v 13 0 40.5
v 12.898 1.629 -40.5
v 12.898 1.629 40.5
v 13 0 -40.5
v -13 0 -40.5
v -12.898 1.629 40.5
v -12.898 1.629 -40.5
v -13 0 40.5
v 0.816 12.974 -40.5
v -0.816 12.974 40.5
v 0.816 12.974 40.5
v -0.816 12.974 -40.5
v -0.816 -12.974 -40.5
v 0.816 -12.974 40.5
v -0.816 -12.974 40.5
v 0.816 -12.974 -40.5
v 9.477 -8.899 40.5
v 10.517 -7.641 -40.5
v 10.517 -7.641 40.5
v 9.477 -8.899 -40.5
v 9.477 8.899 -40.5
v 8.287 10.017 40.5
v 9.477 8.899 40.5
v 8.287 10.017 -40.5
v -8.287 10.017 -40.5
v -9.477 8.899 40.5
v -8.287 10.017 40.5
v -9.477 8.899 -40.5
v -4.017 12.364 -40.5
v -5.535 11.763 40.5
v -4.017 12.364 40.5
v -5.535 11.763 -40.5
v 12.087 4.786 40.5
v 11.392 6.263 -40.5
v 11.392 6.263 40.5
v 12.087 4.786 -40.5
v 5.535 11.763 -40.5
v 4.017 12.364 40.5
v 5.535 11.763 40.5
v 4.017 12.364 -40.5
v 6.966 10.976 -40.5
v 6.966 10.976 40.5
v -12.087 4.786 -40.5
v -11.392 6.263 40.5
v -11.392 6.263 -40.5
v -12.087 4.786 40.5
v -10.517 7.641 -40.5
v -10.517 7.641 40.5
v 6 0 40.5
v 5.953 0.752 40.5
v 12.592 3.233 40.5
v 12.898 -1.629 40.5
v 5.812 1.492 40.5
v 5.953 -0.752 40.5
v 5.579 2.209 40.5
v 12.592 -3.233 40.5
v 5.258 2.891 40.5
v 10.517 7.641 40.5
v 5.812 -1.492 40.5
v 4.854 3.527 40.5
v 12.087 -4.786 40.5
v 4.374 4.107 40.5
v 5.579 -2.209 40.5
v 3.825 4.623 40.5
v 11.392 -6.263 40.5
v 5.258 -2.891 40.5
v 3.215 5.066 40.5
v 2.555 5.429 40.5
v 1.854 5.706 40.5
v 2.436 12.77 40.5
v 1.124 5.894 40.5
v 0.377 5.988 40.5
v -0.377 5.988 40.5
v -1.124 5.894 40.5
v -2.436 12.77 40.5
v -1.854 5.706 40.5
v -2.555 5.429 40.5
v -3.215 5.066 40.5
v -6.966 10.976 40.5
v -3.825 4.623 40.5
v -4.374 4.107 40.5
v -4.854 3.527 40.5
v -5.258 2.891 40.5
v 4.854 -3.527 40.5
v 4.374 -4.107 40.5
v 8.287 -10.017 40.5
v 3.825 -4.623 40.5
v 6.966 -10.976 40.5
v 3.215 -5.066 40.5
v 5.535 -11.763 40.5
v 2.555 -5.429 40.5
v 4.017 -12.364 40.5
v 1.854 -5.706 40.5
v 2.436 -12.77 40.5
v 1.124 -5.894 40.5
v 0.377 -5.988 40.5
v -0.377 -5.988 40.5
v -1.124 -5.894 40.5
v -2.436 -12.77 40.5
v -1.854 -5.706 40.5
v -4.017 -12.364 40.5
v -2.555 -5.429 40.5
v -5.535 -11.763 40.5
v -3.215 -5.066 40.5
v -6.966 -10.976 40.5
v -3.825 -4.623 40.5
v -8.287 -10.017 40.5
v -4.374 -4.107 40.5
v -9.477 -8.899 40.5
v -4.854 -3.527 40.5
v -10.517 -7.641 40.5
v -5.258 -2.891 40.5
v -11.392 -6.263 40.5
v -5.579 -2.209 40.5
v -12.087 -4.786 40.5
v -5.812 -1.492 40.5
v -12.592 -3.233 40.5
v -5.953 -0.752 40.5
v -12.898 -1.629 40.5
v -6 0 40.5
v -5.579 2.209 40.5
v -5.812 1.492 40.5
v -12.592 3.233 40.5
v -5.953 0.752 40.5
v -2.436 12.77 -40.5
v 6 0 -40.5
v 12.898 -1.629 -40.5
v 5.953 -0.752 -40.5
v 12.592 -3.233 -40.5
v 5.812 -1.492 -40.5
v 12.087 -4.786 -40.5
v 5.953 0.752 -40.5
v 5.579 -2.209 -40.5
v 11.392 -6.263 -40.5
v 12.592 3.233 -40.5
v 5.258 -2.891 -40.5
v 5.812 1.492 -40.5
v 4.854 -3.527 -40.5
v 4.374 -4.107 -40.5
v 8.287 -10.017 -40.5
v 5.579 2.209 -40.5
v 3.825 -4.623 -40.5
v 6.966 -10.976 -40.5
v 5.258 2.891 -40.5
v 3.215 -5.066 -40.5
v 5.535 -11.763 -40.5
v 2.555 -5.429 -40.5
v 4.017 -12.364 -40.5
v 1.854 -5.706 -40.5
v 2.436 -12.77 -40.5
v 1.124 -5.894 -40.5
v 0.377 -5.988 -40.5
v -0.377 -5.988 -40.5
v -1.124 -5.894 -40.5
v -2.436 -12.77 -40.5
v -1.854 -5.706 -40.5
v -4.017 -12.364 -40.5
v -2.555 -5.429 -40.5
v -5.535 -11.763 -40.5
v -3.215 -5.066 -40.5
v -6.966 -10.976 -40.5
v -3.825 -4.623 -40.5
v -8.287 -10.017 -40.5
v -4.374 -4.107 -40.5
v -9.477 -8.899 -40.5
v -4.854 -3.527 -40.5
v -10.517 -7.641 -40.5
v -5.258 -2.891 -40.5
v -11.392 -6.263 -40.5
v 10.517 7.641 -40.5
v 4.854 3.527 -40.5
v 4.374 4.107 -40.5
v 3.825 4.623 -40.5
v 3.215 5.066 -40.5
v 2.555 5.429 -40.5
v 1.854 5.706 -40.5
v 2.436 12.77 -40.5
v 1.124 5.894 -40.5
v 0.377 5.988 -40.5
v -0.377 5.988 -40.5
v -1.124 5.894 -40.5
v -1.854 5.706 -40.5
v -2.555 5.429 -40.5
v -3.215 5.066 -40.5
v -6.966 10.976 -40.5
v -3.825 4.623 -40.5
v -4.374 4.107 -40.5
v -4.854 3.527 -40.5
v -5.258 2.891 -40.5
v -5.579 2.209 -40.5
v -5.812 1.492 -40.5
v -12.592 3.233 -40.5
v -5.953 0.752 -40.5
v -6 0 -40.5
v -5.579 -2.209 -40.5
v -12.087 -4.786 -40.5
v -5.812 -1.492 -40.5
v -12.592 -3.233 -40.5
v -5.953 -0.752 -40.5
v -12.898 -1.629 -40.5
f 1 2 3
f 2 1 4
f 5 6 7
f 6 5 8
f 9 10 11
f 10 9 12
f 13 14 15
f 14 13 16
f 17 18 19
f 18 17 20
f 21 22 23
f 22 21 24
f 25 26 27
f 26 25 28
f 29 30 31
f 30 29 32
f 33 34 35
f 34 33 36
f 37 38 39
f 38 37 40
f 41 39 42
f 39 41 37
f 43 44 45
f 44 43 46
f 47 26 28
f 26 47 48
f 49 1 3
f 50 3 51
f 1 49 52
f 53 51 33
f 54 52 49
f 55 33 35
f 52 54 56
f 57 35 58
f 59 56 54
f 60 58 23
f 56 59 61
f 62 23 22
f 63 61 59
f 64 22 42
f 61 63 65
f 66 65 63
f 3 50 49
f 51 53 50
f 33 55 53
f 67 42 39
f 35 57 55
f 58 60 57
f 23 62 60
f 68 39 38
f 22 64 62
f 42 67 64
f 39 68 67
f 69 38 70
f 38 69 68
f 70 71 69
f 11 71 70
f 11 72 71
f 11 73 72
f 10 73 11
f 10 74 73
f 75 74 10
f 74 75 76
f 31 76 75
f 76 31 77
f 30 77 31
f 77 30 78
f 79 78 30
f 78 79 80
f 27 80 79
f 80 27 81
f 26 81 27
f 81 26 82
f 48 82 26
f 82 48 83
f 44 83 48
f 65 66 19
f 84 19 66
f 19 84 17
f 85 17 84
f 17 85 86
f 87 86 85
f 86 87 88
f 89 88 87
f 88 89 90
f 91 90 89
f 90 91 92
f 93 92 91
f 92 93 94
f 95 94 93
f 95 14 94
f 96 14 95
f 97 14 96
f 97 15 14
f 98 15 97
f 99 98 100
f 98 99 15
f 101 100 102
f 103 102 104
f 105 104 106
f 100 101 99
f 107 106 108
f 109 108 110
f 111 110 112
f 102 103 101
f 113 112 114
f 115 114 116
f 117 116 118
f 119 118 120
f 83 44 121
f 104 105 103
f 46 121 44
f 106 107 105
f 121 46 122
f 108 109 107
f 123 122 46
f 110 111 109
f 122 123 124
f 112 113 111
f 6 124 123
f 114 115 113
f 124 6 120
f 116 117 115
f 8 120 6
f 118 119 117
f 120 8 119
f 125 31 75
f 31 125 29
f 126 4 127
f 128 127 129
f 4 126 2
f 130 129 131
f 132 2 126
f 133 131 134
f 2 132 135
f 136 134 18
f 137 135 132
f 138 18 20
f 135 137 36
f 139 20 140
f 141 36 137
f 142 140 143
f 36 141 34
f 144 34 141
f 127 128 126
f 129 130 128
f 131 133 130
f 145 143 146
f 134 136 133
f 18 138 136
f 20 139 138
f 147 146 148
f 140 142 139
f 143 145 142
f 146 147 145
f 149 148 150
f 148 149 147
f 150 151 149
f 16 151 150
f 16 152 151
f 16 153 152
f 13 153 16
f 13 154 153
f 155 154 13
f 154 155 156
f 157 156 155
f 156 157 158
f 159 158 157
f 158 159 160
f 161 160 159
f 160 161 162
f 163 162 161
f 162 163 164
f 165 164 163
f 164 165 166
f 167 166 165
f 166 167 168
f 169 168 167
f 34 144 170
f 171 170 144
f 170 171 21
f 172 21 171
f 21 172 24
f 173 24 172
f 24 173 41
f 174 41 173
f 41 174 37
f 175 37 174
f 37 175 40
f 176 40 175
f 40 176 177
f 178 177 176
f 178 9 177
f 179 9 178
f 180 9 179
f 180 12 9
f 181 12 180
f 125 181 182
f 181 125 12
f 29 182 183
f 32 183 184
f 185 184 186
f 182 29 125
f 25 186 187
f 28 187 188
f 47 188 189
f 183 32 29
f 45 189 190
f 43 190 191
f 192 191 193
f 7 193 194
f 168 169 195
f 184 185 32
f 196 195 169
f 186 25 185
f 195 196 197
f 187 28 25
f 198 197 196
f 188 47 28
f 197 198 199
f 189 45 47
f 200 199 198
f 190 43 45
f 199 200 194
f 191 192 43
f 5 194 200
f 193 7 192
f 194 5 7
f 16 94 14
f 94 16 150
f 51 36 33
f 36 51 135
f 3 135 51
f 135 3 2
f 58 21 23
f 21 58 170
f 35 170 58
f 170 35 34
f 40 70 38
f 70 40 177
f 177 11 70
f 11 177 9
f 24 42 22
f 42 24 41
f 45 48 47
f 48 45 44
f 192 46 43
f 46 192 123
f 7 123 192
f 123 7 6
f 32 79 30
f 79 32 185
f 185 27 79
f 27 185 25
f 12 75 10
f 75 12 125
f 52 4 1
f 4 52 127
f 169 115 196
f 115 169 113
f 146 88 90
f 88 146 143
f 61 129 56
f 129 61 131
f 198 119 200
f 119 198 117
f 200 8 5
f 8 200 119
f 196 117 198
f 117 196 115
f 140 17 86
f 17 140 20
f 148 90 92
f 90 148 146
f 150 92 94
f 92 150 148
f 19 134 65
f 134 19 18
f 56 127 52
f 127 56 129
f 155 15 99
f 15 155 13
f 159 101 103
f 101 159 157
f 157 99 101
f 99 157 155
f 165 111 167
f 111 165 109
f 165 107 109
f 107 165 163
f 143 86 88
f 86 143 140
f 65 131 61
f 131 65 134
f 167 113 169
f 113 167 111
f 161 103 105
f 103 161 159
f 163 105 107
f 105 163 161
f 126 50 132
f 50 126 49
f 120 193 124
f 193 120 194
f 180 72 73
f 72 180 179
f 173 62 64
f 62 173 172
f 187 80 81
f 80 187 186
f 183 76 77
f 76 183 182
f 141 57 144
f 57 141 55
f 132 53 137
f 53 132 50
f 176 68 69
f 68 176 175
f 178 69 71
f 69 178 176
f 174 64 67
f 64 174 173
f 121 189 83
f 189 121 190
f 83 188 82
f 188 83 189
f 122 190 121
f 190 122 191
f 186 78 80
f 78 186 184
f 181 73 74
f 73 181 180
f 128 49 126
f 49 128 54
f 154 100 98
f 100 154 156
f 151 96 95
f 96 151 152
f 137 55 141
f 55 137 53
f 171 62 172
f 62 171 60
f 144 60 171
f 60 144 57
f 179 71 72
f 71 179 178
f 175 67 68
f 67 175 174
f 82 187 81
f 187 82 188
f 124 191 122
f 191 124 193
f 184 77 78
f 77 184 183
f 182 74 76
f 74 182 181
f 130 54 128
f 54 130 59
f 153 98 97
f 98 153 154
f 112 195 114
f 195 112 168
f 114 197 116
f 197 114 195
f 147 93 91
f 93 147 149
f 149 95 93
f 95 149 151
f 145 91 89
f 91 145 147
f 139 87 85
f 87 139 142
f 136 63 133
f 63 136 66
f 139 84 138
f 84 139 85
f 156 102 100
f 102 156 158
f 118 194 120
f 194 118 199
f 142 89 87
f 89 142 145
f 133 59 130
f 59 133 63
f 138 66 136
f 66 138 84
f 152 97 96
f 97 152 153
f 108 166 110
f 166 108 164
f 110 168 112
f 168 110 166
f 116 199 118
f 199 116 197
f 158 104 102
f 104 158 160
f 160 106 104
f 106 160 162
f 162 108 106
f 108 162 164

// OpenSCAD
$fn = 50;


difference() {
	union() {
		translate(v = [0, 0, -40.5000000000]) {
			cylinder(h = 81, r = 13.0000000000);
		}
	}
	union() {
		translate(v = [0, 0, -100.0000000000]) {
			cylinder(h = 200, r = 6);
		}
	}
}
